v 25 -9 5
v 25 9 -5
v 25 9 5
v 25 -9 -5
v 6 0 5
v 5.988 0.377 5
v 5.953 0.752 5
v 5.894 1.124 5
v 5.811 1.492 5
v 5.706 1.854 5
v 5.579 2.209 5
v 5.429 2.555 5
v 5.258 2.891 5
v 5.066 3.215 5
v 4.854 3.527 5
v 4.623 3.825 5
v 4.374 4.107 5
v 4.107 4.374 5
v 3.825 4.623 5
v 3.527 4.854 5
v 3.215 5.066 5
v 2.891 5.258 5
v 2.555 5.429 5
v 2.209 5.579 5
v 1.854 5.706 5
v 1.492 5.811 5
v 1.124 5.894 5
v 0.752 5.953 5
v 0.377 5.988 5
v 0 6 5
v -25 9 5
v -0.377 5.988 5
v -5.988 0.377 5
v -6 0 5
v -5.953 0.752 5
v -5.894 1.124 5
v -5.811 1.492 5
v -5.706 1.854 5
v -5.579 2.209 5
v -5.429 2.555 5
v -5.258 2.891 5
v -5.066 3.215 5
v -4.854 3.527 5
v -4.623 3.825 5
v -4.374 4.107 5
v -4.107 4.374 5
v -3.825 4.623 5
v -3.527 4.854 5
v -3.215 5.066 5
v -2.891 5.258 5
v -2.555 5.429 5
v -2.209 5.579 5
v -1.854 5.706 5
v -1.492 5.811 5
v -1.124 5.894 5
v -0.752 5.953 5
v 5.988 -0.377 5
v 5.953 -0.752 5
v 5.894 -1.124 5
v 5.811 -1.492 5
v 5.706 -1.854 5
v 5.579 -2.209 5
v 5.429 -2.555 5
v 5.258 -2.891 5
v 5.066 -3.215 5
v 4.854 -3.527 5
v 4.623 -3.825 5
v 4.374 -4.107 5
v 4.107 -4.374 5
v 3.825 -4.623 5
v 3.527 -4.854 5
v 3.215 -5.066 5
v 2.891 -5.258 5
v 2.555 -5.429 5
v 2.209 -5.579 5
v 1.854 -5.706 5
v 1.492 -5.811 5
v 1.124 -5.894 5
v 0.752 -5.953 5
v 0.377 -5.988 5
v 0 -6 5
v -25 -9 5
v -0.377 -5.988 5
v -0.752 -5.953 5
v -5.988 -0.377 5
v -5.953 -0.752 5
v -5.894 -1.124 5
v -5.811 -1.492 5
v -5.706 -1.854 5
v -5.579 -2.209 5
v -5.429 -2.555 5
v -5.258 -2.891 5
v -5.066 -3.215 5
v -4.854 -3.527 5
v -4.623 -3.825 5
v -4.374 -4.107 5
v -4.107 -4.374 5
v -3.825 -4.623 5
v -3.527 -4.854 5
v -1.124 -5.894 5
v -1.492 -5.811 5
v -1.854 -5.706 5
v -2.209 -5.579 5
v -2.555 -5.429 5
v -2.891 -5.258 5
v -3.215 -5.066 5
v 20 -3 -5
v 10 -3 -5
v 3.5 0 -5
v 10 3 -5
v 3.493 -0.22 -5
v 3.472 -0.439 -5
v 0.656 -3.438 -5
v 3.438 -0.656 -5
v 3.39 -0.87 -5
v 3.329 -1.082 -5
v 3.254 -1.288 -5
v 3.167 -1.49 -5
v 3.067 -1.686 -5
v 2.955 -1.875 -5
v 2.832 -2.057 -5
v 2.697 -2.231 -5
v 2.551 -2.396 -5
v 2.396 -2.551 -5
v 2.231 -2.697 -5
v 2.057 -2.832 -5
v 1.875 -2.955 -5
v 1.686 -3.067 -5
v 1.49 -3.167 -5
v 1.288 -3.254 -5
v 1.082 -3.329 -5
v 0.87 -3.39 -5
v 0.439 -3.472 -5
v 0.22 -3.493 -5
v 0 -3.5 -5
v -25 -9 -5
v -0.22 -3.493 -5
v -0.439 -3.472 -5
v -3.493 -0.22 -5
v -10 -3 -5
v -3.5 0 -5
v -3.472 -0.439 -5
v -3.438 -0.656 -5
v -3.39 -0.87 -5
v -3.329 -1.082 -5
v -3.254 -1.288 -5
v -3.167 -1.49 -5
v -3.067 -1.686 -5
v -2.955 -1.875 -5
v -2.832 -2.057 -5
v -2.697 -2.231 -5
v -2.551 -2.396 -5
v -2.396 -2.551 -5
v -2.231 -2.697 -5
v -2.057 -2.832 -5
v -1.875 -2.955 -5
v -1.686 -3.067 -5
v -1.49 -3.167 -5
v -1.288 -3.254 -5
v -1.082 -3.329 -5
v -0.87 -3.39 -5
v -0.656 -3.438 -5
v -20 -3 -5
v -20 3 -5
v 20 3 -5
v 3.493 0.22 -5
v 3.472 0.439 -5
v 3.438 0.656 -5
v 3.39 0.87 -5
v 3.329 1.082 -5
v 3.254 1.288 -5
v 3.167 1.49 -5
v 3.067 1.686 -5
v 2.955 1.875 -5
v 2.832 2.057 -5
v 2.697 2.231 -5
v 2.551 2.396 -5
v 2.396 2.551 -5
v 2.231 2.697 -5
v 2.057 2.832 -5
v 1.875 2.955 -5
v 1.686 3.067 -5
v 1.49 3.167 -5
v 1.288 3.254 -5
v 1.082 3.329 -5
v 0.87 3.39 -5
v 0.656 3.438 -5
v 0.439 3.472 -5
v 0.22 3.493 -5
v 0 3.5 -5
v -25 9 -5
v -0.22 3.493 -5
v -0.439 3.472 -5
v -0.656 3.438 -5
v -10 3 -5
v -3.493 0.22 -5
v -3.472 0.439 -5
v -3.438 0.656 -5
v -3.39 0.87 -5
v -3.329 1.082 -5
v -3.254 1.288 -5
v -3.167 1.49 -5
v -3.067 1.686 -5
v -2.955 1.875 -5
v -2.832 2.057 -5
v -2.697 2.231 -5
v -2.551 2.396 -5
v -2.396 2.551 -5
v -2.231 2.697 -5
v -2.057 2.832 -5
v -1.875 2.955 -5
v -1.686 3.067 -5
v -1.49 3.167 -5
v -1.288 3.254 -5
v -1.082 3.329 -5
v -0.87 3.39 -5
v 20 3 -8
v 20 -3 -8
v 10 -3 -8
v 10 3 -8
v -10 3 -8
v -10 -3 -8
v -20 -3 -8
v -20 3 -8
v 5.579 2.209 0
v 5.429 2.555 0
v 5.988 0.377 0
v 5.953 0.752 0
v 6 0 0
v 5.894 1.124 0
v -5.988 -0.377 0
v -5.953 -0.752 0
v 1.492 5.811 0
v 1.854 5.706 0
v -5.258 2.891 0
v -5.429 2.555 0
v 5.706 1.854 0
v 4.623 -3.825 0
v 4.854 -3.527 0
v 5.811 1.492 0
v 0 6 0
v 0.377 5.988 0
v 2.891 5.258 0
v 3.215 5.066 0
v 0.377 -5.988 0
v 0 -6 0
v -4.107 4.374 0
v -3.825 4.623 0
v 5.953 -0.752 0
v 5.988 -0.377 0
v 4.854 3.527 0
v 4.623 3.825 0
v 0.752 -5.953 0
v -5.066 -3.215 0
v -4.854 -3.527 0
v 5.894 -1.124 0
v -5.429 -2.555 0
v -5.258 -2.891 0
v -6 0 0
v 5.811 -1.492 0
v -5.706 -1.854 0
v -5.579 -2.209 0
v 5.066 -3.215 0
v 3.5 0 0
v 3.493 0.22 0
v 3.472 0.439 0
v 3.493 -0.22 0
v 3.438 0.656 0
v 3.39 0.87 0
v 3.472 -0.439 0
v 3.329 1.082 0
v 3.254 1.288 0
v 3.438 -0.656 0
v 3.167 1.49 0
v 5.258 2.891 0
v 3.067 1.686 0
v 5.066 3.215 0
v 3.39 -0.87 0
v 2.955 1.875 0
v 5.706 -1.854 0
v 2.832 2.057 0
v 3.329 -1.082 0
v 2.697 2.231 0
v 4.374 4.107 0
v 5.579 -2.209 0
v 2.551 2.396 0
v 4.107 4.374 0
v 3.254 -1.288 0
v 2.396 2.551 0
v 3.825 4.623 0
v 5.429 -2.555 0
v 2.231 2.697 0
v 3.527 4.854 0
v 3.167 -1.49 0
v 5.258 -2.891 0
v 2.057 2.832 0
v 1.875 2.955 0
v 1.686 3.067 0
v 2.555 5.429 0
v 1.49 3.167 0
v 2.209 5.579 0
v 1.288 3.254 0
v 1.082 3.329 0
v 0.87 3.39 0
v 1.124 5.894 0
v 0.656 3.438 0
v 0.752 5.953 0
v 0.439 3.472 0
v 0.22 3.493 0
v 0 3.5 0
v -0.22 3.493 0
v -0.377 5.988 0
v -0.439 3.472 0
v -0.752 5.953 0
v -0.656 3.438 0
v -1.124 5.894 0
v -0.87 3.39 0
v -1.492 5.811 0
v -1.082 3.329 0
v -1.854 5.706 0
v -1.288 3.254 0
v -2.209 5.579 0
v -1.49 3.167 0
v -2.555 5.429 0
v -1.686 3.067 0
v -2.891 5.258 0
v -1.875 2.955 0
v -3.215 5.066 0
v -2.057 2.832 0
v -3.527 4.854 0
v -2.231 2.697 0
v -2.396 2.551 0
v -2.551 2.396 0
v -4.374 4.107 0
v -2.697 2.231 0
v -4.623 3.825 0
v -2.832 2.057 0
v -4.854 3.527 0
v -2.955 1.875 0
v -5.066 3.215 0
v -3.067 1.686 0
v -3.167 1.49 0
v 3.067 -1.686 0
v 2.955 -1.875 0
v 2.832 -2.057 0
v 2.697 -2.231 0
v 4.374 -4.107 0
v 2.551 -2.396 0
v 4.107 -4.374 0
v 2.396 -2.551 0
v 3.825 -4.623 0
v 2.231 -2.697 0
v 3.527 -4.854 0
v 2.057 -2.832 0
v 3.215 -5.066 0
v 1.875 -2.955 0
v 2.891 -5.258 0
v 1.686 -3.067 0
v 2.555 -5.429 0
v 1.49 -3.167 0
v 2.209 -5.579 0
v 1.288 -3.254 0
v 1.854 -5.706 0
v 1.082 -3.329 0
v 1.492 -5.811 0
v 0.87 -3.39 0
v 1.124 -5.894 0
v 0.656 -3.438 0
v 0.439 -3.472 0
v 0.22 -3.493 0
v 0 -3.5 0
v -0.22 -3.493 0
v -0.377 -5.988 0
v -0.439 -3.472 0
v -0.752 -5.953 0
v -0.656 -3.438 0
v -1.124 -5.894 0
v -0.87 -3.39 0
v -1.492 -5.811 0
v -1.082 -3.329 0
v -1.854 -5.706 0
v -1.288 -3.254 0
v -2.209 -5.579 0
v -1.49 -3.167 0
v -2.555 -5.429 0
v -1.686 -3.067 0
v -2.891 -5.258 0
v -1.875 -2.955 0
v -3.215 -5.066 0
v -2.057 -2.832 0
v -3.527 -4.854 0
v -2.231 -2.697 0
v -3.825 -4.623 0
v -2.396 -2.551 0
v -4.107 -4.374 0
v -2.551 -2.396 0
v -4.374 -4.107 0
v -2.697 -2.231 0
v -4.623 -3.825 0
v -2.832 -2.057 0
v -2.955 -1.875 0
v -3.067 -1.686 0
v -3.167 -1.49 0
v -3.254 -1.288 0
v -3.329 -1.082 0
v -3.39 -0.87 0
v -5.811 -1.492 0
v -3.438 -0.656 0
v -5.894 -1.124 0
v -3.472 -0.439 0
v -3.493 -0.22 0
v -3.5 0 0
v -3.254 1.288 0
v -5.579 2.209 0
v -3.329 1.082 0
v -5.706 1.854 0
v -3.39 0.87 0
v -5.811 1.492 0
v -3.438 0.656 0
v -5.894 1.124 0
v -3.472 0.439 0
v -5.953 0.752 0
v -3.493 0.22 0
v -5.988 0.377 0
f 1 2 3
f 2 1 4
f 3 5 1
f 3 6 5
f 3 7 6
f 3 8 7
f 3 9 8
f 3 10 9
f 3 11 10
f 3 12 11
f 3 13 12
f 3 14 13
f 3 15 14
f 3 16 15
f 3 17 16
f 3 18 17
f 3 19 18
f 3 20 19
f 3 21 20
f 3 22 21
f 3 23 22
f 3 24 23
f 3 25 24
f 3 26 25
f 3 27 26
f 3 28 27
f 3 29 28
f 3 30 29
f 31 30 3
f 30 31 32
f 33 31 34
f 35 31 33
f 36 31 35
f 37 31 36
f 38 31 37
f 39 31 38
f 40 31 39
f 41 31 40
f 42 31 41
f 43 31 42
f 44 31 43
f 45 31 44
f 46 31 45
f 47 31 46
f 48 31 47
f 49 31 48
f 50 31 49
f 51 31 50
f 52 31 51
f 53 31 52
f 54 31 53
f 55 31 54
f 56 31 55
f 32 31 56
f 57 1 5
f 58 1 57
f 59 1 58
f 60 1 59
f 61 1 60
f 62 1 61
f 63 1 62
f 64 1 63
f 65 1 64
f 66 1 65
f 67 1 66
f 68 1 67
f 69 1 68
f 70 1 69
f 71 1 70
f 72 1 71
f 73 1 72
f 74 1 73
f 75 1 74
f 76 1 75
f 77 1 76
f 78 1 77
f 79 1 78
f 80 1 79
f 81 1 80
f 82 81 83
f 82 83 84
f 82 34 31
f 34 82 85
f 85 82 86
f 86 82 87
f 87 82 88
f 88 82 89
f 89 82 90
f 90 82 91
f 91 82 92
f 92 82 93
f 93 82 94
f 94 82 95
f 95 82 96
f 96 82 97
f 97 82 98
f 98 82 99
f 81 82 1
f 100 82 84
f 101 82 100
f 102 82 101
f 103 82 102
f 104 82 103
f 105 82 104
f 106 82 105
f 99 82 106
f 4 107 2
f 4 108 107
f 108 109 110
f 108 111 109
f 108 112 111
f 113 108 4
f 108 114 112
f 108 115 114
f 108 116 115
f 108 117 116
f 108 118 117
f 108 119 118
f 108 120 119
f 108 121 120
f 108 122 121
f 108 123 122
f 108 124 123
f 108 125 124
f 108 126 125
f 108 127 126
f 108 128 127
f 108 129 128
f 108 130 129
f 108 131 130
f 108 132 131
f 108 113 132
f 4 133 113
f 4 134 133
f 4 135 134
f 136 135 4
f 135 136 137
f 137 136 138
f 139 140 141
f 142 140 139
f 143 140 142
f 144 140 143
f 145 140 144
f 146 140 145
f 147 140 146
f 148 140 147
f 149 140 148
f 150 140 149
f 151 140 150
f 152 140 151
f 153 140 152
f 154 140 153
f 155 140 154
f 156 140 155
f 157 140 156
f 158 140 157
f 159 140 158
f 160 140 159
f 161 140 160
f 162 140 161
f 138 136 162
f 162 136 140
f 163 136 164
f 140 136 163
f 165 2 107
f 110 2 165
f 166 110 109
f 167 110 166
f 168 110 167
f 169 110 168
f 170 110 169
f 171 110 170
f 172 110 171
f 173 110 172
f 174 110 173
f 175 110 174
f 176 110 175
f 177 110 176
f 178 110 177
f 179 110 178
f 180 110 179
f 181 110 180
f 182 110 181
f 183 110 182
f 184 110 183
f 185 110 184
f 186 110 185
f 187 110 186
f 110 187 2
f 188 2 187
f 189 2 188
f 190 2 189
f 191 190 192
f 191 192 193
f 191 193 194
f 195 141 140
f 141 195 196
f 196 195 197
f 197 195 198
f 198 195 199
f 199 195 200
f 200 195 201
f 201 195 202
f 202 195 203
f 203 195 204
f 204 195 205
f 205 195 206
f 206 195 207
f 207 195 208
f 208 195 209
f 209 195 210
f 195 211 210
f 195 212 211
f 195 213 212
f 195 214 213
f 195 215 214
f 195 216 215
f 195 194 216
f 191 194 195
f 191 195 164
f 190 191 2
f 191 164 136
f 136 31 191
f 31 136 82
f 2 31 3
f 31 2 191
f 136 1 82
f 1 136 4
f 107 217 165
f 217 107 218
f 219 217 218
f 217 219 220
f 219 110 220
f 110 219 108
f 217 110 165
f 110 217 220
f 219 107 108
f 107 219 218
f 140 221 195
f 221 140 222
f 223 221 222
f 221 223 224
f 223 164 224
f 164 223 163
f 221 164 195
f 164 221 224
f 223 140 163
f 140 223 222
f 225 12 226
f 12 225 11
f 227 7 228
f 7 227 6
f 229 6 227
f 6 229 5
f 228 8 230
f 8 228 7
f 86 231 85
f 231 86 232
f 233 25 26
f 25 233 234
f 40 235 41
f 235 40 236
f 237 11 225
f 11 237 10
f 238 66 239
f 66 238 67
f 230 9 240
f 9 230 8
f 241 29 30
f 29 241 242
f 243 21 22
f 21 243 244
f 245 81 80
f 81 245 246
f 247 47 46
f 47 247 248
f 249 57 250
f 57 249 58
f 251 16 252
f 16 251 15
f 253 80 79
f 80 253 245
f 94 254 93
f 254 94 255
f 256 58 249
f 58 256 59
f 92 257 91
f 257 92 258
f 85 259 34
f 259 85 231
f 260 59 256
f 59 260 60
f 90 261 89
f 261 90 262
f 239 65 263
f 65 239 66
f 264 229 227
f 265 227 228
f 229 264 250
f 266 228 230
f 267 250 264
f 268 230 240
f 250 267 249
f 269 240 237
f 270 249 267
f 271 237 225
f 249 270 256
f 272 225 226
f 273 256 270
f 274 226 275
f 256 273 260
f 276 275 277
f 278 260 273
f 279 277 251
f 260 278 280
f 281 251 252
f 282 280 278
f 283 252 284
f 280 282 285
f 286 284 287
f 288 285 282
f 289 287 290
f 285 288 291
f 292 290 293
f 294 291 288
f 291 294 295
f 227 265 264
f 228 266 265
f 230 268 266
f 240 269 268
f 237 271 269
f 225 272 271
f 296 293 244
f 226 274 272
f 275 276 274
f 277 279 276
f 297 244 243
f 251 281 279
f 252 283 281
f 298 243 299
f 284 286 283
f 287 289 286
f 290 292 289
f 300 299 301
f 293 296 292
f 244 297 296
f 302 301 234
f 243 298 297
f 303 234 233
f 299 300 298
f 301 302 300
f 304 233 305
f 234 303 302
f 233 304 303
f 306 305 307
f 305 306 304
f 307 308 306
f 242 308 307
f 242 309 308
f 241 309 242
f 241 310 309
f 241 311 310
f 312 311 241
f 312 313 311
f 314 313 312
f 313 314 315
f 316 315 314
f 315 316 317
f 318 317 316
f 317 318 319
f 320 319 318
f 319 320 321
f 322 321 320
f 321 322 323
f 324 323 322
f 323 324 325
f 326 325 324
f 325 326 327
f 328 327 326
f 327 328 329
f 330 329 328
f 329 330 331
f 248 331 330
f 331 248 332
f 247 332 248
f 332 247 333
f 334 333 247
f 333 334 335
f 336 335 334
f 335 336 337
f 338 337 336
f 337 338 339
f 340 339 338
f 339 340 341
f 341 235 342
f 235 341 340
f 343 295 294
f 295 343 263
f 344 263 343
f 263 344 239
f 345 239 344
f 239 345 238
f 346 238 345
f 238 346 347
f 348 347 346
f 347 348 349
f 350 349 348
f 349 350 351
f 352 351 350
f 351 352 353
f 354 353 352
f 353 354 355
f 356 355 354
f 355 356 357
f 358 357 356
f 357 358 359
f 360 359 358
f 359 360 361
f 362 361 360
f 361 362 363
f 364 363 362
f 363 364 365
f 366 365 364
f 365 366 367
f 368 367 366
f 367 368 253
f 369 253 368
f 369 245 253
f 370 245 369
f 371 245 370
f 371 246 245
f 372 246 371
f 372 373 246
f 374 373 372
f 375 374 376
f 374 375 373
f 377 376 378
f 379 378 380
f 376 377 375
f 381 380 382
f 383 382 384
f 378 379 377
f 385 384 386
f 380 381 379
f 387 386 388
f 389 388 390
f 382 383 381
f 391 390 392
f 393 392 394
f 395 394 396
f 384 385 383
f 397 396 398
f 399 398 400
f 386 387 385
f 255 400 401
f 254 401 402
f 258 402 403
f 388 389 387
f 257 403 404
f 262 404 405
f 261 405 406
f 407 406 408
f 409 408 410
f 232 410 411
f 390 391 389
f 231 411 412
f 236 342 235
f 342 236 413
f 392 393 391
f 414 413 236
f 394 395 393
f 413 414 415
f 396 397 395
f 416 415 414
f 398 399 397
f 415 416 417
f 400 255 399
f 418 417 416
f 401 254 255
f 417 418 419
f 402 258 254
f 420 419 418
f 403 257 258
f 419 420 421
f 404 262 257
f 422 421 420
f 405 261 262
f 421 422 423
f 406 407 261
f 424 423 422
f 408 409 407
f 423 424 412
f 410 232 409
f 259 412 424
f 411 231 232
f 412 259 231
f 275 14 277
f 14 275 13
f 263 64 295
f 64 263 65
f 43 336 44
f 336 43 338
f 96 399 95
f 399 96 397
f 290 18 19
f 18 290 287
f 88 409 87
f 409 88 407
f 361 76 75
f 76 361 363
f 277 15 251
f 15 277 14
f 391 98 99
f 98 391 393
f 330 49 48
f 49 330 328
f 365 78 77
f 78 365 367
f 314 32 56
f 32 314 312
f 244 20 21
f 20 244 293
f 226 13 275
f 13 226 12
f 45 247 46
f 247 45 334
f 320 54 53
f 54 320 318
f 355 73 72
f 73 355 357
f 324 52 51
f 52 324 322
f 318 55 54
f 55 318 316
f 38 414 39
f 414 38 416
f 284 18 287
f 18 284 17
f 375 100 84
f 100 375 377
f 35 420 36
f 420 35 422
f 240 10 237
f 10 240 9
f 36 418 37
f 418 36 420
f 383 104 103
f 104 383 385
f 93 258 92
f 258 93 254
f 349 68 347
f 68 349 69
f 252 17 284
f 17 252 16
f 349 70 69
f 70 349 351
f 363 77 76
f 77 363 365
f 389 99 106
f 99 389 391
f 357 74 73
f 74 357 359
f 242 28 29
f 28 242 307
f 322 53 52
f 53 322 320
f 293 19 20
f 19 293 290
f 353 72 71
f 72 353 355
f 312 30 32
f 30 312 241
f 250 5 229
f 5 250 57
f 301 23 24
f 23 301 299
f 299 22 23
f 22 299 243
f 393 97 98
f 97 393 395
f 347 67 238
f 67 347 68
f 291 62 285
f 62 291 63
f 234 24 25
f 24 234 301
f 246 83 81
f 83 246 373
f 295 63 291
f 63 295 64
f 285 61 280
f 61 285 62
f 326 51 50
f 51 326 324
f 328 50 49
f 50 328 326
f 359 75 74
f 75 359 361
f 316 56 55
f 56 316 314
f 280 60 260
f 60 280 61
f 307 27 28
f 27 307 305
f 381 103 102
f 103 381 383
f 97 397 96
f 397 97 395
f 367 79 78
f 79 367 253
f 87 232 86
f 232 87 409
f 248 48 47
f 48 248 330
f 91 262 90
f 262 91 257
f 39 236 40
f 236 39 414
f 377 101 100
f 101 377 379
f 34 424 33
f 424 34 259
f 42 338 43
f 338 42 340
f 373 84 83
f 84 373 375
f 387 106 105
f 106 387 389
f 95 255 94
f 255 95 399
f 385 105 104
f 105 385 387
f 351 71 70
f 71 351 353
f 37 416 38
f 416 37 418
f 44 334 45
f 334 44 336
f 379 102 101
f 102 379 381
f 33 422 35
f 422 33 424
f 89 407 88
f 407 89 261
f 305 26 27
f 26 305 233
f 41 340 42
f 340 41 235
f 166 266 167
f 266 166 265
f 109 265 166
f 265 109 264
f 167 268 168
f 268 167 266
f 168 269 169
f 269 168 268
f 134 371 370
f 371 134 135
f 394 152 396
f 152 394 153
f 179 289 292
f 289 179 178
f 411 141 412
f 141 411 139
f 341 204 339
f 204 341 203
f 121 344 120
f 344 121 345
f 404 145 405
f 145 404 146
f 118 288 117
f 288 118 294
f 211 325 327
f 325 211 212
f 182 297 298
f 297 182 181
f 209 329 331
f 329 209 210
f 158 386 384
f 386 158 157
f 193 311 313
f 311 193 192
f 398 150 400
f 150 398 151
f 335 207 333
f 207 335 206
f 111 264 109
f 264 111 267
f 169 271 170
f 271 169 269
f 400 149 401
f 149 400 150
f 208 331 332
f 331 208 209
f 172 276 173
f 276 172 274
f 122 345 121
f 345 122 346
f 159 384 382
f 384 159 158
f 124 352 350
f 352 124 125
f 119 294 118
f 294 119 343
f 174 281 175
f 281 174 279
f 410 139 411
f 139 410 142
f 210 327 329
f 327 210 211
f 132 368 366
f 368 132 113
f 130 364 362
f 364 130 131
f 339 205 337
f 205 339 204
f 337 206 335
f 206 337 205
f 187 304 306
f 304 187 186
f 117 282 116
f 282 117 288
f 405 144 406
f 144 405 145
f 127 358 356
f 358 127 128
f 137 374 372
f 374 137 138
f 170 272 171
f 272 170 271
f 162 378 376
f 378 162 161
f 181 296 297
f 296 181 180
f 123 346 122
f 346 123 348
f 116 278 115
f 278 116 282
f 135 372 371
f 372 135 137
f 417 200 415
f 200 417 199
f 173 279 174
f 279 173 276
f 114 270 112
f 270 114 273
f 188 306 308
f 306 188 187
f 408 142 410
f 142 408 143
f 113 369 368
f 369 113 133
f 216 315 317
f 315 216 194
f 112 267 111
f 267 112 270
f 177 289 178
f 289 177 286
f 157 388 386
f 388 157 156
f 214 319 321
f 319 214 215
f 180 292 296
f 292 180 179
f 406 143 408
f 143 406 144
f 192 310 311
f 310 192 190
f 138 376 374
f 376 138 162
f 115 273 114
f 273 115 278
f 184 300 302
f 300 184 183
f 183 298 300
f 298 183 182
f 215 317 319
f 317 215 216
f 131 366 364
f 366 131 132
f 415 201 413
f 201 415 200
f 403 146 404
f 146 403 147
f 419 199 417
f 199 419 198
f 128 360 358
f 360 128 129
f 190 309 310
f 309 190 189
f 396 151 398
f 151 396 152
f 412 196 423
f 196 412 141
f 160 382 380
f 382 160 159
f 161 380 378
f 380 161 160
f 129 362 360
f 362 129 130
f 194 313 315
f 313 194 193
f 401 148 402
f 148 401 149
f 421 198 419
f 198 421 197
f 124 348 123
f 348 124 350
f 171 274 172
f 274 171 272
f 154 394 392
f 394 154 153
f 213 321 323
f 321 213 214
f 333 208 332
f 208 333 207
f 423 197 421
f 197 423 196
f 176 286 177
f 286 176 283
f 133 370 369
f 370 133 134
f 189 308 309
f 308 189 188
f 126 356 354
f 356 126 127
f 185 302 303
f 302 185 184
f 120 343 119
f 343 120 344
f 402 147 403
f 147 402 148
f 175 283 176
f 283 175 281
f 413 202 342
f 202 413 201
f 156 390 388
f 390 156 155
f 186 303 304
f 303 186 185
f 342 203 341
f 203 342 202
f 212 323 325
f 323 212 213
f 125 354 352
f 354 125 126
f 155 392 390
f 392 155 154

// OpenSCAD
// Anschlag für Klappen aus 6mm Multiplex
$fn=100;

difference() {
    union() {
        cube([50,18,10],true);
        translate([ 15,0,-5]) cube([10,6,6],true);
        translate([-15,0,-5]) cube([10,6,6],true);
    }
    translate([0,0,5]) cylinder(h=10,d=12,center=true);  // Sachloch
    cylinder(h=50,d=7,center=true);  // Durchgangsbohrung
}
